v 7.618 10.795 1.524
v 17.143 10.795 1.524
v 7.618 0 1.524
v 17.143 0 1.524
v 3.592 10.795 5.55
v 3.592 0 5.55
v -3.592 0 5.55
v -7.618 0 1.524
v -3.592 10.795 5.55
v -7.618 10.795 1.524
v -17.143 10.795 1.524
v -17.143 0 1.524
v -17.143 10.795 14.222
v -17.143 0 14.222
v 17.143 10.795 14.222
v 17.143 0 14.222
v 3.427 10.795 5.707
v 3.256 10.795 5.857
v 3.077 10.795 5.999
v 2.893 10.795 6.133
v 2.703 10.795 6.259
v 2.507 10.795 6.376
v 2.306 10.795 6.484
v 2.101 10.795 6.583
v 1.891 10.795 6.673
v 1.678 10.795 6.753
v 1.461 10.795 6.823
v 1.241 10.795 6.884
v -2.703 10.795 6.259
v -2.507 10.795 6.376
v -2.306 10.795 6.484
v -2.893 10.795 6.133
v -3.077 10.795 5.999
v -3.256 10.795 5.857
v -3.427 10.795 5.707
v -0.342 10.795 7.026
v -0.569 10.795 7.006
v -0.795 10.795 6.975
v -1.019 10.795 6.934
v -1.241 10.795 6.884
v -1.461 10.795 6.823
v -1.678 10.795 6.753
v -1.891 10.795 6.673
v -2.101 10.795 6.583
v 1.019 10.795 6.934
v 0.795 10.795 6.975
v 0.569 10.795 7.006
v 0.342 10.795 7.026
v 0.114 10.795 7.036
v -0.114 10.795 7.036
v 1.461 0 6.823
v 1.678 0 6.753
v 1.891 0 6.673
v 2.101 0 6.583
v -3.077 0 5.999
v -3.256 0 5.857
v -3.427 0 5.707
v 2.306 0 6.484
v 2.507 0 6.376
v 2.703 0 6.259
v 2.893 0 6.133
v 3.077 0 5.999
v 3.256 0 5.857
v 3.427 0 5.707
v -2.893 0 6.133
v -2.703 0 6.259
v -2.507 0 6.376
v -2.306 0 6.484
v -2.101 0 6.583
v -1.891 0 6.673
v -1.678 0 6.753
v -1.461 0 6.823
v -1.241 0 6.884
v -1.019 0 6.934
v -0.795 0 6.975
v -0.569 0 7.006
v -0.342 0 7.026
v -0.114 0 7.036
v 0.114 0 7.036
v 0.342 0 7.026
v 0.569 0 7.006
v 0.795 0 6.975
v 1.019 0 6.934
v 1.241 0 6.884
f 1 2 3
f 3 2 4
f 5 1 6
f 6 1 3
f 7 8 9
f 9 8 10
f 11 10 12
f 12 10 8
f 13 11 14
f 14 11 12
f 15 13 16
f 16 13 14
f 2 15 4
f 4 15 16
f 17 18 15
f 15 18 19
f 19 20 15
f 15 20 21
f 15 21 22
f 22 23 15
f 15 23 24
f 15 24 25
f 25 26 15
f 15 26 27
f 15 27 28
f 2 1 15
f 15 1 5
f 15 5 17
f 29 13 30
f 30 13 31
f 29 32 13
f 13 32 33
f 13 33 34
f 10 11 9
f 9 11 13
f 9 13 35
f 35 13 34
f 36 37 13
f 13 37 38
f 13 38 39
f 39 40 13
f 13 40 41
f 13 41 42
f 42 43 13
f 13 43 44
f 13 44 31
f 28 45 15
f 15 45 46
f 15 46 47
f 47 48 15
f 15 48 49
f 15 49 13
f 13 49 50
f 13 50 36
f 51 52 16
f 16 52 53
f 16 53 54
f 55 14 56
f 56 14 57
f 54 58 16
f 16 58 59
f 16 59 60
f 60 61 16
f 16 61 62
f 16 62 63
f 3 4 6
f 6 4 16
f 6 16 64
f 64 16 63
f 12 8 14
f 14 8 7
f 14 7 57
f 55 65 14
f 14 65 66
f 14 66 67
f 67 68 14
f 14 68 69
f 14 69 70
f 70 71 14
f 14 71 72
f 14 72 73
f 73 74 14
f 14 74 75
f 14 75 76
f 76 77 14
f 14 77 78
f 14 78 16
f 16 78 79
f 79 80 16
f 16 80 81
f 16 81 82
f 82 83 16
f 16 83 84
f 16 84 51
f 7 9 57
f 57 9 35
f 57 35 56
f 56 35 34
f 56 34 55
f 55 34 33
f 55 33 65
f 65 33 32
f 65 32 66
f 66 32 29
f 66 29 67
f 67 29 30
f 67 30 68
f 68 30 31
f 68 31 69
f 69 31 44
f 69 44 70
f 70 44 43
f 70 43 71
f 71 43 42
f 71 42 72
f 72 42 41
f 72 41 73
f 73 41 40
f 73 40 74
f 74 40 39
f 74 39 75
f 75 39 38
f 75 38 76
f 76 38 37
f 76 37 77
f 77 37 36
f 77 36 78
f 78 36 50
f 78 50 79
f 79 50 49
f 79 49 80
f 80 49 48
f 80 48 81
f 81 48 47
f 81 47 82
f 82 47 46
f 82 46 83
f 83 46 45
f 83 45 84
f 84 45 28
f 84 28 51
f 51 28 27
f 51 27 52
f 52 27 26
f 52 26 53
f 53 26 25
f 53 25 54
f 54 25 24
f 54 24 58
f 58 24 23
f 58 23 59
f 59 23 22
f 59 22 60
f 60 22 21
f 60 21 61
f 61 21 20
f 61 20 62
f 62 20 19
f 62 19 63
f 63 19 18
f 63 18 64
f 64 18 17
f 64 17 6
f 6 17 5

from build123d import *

# Parameters (mm, degrees)
BOSS_EXTRUDE1_DEPTH = 10.795
FILLET1_R           = 5.08


with BuildPart() as part:
    # Sketch1 → Boss-Extrude1 (new body)
    with BuildSketch(Plane(origin=(0, 0, 0), x_dir=(1, 0, 0), z_dir=(0, 1, 0))):
        Polygon((7.617900731, -1.524), (0, -9.141900731), (-7.617900731, -1.524), (-17.142900731, -1.524), (-17.142900731, -14.221900731), (17.142900731, -14.221900731), (17.142900731, -1.524), align=None)
    extrude(amount=BOSS_EXTRUDE1_DEPTH)

    # Fillet1
    fillet1_edges = [part.edges().sort_by_distance(p)[0] for p in [
        (0, 5.3975, 9.141900731),
    ]]
    fillet(fillet1_edges, radius=FILLET1_R)


solid = part.part
